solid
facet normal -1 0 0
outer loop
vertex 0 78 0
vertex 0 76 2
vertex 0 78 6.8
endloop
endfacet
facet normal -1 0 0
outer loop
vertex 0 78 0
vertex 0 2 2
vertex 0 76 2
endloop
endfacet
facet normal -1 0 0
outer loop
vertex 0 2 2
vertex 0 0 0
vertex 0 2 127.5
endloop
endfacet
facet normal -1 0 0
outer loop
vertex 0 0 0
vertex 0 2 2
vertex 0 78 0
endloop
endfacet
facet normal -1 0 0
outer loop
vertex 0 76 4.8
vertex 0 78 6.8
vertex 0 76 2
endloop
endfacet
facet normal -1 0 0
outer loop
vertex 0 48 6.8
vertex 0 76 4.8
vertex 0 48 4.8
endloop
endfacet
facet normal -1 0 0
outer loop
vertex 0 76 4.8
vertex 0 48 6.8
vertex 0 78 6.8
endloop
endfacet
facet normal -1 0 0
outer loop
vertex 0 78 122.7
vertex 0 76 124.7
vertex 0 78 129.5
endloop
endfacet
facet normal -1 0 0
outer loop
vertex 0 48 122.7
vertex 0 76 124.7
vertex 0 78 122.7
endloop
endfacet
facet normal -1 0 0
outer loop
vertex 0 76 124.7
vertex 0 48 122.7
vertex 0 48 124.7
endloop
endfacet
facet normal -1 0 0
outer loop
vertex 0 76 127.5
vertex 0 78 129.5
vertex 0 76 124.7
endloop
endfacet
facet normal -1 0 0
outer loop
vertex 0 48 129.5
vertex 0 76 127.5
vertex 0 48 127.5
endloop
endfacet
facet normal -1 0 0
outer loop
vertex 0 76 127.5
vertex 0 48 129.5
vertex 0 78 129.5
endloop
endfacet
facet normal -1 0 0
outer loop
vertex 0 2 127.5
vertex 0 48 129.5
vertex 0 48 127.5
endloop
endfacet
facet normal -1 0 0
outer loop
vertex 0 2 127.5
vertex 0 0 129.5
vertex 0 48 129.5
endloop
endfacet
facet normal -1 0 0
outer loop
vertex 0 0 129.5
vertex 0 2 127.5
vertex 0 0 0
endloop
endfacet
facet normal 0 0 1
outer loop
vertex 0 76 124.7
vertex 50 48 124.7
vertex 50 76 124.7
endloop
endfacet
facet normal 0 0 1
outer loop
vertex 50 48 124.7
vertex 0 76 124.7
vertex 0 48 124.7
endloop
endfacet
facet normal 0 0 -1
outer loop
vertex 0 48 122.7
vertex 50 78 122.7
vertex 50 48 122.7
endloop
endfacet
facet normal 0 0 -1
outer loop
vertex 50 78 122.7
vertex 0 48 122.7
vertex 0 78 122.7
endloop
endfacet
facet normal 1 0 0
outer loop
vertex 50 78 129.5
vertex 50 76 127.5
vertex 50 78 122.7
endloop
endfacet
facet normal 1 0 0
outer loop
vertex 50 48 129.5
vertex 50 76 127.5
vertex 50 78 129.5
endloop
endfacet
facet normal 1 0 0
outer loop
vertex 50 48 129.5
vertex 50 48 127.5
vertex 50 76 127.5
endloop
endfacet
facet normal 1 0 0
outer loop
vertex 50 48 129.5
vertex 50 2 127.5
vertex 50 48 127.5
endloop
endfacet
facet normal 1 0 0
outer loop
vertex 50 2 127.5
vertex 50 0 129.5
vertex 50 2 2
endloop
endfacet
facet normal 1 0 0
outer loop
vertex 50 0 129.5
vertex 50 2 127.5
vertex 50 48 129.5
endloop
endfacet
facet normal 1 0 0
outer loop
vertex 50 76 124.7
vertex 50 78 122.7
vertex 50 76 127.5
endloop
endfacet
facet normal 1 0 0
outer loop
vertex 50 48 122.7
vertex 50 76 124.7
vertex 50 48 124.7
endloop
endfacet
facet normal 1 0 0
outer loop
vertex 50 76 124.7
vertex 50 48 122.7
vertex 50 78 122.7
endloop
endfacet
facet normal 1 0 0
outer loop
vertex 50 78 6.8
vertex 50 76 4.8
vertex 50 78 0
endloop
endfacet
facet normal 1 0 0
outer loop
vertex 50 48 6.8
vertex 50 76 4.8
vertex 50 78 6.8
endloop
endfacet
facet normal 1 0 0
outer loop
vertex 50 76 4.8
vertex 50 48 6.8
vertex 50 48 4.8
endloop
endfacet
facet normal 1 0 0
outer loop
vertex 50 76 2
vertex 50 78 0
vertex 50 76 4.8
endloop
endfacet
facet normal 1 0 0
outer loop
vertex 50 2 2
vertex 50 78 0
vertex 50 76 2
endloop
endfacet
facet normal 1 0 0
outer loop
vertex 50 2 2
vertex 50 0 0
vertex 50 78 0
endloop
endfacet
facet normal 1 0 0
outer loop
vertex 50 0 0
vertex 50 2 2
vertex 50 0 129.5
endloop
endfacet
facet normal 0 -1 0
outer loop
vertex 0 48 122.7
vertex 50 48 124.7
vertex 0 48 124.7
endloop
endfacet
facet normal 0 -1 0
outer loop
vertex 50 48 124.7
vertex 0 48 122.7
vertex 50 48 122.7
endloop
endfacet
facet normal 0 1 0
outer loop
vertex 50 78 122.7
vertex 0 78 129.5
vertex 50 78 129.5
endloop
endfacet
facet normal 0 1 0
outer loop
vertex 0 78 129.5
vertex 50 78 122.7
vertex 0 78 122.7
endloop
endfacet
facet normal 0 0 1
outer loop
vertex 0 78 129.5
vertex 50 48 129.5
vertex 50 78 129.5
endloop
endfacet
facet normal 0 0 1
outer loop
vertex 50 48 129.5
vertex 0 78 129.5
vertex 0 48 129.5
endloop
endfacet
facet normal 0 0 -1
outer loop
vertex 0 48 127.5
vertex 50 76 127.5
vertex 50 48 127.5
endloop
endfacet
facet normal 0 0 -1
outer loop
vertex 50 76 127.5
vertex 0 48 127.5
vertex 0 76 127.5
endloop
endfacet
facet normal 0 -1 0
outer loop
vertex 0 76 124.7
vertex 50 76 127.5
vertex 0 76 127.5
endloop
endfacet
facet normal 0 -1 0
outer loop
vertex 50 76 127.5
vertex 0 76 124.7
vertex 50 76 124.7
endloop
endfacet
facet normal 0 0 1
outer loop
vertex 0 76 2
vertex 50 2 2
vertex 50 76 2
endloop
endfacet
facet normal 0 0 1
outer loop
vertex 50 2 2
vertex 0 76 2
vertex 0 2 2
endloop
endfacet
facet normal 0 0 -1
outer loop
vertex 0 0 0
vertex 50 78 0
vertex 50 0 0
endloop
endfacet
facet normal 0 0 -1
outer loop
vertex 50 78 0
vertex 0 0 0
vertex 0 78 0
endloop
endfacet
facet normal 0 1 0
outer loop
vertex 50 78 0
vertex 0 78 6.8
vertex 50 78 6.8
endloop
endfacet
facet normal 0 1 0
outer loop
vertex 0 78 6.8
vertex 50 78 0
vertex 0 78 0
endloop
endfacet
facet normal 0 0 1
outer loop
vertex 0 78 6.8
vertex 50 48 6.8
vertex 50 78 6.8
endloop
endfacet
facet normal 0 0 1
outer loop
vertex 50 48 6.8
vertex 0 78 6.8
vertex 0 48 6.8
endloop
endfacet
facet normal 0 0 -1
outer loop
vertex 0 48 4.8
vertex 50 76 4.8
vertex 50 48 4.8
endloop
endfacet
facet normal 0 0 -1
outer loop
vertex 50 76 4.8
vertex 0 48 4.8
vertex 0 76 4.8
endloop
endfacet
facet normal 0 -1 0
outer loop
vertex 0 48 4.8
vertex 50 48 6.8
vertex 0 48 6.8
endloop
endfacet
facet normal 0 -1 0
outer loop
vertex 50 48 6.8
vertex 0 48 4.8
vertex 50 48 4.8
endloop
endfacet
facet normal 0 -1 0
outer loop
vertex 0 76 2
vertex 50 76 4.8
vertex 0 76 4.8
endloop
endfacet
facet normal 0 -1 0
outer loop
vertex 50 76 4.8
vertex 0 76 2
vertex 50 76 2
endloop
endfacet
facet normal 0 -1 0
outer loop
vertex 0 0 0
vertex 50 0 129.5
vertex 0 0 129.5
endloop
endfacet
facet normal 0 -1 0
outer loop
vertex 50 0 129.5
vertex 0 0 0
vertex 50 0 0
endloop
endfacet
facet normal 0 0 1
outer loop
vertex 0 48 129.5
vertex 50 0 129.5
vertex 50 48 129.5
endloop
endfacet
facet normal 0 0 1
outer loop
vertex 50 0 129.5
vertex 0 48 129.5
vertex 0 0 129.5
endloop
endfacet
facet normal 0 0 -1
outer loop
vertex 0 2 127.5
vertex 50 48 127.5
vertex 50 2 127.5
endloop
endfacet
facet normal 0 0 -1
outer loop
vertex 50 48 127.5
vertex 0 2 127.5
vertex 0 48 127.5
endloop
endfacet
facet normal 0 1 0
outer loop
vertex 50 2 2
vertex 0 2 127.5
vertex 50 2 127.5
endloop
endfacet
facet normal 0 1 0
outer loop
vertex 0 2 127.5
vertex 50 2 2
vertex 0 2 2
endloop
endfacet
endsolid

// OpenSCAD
// Generated by SolidPython 1.1.3 on 2025-06-04 21:41:40


union() {
	cube(size = [50, 48, 2]);
	translate(v = [0, 0, 127.5000000000]) {
		cube(size = [50, 48, 2]);
	}
	translate(v = [0, 0, 2]) {
		cube(size = [50, 2, 125.5000000000]);
	}
	translate(v = [0, 48, 122.7000000000]) {
		translate(v = [25.0000000000, 15.0000000000, 0]) {
			rotate(a = [0, 0, 180]) {
				translate(v = [-25.0000000000, -15.0000000000, 0]) {
					union() {
						cube(size = [50, 30, 2]);
						translate(v = [0, 0, 4.8000000000]) {
							cube(size = [50, 30, 2]);
						}
						translate(v = [0, 0, 2]) {
							cube(size = [50, 2, 2.8000000000]);
						}
					}
				}
			}
		}
	}
	translate(v = [0, 48, 0]) {
		translate(v = [25.0000000000, 15.0000000000, 0]) {
			rotate(a = [0, 0, 180]) {
				translate(v = [-25.0000000000, -15.0000000000, 0]) {
					union() {
						cube(size = [50, 30, 2]);
						translate(v = [0, 0, 4.8000000000]) {
							cube(size = [50, 30, 2]);
						}
						translate(v = [0, 0, 2]) {
							cube(size = [50, 2, 2.8000000000]);
						}
					}
				}
			}
		}
	}
}
/***********************************************
*********      SolidPython code:      **********
************************************************
 
#! /home/tfili/Source/tfili/3d-printing/venv/bin/python

from solid import *
from solid.utils import *
import subprocess

# Parameters
clip_width = 50         # Width of the clip (X-axis)
clip_length = 30        # Length of the clip (Y-axis)
clip_side_thickness = 2 # Thickness of each side (Z)
clip_gap = 2.8          # Gap between the sides
clip_top_thickness = 2  # Thickness of the connecting top
clip_height = clip_side_thickness * 2 + clip_gap

base_width = 50         # Width of the base (X-axis)
base_length = 48        # Length of the base (Y-axis)
base_side_thickness = 2 # Thickness of each base (Z)
base_gap = 125.5        # Gap between the sides
base_top_thickness = 2  # Thickness of the connecting top
base_height = base_side_thickness * 2 + base_gap

def u_clip(width, length, side_thickness, top_thickness, gap):
    # Bottom arm
    bottom = cube([width, length, side_thickness])

    # Top arm (connected to bottom via the back face)
    top = translate([0, 0, side_thickness + gap])(cube([width, length, side_thickness]))

    # Back connector
    connector = translate([0, 0, side_thickness])(cube([width, top_thickness, gap]))

    return bottom + top + connector

def end_clip():
    clip = u_clip(clip_width, clip_length, clip_side_thickness, clip_top_thickness, clip_gap)

    # Translate to origin
    clip = translate([-clip_width/2,-clip_length/2,0])(clip)

    # Rotate 180 deg around Z
    clip = rotate([0,0,180])(clip)

    # Rotate back to original location
    clip = translate([clip_width/2,clip_length/2,0])(clip)
    return clip

def top():
    return translate([0, base_length, base_height-clip_height])(end_clip());

def bottom():
    return translate([0, base_length, 0])(end_clip())

# Create and export the model

top_clip = top()
bottom_clip = bottom()
base_clip = u_clip(base_width, base_length, base_side_thickness, base_top_thickness, base_gap)

scad_render_to_file(base_clip + top_clip + bottom_clip, 'clip.scad')

# Convert to STL
subprocess.run(["openscad", "-o", "clip.stl", "clip.scad"], stdout=subprocess.PIPE, stderr=subprocess.PIPE, text=True) 
 
************************************************/
